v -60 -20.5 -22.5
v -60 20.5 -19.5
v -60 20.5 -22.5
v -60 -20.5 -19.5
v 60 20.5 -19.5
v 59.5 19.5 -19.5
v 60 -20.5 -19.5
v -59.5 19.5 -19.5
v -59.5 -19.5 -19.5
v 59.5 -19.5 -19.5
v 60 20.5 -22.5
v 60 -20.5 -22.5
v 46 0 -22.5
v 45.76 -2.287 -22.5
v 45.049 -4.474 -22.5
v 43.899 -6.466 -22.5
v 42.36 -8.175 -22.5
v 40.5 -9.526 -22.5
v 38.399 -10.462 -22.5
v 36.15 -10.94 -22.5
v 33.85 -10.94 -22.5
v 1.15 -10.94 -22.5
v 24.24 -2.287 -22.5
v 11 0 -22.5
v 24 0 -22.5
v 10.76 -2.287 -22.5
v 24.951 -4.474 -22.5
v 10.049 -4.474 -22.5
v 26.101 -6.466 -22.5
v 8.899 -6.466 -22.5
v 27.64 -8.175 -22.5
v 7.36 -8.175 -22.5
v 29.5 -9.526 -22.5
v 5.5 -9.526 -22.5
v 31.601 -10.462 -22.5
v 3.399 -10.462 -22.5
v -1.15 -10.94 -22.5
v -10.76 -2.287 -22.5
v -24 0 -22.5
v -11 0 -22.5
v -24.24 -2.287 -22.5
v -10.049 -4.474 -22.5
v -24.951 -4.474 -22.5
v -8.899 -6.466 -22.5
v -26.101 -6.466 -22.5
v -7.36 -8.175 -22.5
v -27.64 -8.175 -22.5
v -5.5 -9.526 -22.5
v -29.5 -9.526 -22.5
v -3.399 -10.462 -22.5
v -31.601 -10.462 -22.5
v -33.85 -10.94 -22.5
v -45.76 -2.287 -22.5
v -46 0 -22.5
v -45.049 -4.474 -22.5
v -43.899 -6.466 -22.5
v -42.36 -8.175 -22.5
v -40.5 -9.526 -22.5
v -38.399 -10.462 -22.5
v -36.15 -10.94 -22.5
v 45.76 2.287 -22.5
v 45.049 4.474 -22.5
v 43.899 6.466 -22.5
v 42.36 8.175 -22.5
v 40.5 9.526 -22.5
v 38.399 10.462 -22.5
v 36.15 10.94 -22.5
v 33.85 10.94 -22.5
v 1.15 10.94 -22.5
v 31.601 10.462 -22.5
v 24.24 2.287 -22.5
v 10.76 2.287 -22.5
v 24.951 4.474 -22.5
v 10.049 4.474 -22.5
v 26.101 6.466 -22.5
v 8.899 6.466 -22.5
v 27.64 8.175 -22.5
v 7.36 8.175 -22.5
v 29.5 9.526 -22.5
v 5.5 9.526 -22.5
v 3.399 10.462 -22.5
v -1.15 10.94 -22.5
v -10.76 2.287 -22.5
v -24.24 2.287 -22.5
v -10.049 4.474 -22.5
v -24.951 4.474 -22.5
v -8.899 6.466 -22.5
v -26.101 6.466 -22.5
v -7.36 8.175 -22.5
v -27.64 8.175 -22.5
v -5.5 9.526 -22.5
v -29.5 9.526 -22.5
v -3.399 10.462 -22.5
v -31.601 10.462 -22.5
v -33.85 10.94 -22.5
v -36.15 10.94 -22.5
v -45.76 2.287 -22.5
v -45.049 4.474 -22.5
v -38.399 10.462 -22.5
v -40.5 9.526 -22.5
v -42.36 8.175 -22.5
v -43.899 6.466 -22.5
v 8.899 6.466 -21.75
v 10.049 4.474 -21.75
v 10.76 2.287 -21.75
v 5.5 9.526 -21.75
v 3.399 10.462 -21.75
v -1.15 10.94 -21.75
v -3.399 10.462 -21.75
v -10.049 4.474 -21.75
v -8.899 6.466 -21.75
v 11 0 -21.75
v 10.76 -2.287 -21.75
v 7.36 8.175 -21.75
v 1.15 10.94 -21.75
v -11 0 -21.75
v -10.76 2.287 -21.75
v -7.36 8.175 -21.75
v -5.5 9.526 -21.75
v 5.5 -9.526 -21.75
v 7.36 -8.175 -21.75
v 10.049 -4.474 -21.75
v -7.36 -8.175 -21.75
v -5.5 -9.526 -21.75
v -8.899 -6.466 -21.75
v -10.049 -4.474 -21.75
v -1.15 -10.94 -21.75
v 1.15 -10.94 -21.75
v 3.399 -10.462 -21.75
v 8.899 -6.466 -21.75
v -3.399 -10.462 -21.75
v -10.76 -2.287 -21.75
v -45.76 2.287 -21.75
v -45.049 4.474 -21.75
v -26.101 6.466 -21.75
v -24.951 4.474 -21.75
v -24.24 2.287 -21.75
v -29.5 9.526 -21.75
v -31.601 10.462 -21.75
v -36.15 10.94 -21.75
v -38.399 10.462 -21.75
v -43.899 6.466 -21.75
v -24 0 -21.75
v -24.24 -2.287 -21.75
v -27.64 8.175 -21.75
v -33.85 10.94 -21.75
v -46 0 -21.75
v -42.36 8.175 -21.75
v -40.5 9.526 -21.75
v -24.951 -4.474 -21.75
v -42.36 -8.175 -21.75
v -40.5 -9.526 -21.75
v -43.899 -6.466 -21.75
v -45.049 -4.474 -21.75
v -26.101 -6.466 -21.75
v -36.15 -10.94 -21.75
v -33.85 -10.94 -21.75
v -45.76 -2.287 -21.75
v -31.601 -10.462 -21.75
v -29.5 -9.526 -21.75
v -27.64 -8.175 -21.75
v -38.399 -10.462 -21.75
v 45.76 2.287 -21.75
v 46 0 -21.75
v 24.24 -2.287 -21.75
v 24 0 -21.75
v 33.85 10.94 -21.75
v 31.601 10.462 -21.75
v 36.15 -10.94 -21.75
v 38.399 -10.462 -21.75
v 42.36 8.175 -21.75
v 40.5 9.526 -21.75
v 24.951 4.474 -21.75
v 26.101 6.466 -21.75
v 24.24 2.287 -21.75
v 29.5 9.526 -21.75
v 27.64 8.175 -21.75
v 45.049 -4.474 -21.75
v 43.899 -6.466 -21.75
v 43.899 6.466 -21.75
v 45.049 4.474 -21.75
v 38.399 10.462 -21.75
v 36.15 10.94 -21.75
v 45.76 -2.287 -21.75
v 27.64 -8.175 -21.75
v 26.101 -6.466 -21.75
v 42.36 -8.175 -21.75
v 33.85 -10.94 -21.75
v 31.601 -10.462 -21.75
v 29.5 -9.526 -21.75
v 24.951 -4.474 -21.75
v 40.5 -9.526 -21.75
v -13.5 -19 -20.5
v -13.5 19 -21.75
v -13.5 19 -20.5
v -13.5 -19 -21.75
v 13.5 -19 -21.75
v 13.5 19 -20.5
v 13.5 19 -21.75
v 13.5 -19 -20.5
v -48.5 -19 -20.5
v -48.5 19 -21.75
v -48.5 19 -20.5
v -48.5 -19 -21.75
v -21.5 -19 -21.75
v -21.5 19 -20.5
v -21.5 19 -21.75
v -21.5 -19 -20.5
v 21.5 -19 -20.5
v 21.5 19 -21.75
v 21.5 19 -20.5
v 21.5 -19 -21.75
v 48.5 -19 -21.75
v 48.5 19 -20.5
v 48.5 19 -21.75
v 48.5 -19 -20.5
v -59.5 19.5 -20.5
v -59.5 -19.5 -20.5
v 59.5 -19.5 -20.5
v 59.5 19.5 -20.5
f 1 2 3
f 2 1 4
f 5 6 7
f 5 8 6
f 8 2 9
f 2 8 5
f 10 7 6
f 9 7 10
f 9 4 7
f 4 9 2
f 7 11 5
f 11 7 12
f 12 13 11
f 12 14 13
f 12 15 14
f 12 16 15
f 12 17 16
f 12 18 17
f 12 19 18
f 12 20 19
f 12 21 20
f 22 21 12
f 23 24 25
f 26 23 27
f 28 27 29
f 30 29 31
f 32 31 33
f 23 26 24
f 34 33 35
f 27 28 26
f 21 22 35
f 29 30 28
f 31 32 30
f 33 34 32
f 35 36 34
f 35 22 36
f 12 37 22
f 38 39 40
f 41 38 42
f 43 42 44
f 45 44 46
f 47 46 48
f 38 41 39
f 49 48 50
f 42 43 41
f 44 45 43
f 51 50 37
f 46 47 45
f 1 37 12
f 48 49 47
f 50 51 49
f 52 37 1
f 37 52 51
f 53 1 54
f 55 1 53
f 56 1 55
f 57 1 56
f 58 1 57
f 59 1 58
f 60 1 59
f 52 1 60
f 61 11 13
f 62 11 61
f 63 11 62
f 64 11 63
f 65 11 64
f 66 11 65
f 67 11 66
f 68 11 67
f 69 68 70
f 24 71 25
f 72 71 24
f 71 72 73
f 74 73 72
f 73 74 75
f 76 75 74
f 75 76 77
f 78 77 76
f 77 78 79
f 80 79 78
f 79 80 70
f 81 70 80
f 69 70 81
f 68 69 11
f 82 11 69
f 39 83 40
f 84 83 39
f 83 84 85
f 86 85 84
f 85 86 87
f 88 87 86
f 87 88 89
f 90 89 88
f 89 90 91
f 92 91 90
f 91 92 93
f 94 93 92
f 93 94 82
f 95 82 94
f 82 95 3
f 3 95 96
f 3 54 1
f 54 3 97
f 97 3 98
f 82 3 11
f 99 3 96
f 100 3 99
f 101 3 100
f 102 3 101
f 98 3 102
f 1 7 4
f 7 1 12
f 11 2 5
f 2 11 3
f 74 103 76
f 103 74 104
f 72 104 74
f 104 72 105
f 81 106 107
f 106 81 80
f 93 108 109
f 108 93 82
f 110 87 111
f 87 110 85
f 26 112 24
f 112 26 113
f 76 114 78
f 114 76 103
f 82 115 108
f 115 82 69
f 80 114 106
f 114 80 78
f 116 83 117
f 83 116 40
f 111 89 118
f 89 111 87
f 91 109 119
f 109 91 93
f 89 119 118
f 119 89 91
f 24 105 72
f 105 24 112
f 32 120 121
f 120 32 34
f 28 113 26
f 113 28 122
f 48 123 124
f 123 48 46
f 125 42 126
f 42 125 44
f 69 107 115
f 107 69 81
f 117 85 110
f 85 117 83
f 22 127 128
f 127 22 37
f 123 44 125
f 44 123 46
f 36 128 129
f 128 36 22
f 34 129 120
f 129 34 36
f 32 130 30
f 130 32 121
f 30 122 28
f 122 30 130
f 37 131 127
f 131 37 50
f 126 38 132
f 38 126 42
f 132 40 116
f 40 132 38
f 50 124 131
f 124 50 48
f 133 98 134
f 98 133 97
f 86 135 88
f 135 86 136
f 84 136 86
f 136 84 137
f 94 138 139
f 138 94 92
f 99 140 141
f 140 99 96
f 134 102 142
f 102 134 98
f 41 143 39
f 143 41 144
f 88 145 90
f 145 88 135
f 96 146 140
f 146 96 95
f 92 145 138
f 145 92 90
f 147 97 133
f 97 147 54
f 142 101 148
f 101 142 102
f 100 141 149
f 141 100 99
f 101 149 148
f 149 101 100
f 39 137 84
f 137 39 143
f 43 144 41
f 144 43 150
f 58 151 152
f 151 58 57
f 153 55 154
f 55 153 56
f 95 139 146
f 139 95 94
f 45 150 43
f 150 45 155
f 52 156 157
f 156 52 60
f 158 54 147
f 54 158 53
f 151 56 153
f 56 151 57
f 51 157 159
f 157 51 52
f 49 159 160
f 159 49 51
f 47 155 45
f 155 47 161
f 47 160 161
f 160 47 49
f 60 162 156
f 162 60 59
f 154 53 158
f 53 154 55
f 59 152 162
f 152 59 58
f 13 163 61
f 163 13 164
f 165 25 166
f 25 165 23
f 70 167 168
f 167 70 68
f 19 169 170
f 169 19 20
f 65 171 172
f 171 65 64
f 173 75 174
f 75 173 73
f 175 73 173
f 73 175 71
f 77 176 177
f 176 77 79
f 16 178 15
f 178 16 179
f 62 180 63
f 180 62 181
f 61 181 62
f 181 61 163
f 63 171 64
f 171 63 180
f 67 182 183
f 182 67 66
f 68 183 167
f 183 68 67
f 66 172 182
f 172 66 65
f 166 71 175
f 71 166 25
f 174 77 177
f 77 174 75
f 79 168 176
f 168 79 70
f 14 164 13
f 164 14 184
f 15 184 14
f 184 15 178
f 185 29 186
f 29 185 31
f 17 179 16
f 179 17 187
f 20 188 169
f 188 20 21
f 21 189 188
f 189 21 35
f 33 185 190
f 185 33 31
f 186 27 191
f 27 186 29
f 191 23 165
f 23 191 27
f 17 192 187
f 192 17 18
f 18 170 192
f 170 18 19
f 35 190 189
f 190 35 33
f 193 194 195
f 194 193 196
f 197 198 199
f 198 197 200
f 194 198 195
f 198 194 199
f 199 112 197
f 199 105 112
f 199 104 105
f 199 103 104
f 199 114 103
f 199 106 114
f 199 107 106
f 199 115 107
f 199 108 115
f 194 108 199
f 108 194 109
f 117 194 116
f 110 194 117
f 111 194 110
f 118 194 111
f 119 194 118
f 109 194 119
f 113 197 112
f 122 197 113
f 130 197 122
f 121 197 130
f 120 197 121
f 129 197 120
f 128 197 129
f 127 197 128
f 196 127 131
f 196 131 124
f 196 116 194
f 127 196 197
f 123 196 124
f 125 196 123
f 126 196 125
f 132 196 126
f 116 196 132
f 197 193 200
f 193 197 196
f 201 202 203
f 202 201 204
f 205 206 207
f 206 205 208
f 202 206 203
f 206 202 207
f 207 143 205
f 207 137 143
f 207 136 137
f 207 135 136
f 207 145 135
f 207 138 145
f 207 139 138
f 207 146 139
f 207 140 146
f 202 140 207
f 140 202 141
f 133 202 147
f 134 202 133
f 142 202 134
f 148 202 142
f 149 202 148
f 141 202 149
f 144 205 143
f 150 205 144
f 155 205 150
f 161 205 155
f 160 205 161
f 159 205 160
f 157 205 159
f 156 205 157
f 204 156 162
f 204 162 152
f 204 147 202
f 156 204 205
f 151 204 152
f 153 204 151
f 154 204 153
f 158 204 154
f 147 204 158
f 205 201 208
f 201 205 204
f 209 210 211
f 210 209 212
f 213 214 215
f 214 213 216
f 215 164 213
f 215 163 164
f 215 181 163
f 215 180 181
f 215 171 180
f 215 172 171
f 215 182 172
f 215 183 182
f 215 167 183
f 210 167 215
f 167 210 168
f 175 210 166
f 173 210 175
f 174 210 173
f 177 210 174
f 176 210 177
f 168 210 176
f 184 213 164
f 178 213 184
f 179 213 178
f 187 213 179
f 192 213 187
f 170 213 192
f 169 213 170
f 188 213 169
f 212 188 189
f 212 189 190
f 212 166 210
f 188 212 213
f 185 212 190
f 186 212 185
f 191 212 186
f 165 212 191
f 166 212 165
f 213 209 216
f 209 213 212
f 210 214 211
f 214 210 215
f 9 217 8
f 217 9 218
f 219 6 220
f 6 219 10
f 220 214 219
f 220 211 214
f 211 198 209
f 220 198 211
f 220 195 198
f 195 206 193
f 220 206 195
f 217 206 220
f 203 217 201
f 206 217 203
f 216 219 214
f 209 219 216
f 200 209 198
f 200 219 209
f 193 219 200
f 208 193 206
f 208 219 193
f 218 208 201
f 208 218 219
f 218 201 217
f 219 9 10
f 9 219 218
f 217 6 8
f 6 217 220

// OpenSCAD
//filter holder/'wheel' for excitation
module filter_holderdi2(){
    translate([0,50,-21])difference(){
        cube([120,41,3],center=true);
        cylinder(h=999,r=11,center=true);
        translate([-35,0,0])cylinder(h=999,r=11,center=true);
        translate([35,0,0])cylinder(h=999,r=11,center=true);
        translate([0,0,0])cube([27,38,1.5],center=true);
        translate([-35,0,0])cube([27,38,1.5],center=true);
        translate([35,0,0])cube([27,38,1.5],center=true);
    }
}    


translate([0,-50,0])difference(){
        filter_holderdi2();
        translate([0,50,-18.5])cube([119,39,4],center=true);
}
